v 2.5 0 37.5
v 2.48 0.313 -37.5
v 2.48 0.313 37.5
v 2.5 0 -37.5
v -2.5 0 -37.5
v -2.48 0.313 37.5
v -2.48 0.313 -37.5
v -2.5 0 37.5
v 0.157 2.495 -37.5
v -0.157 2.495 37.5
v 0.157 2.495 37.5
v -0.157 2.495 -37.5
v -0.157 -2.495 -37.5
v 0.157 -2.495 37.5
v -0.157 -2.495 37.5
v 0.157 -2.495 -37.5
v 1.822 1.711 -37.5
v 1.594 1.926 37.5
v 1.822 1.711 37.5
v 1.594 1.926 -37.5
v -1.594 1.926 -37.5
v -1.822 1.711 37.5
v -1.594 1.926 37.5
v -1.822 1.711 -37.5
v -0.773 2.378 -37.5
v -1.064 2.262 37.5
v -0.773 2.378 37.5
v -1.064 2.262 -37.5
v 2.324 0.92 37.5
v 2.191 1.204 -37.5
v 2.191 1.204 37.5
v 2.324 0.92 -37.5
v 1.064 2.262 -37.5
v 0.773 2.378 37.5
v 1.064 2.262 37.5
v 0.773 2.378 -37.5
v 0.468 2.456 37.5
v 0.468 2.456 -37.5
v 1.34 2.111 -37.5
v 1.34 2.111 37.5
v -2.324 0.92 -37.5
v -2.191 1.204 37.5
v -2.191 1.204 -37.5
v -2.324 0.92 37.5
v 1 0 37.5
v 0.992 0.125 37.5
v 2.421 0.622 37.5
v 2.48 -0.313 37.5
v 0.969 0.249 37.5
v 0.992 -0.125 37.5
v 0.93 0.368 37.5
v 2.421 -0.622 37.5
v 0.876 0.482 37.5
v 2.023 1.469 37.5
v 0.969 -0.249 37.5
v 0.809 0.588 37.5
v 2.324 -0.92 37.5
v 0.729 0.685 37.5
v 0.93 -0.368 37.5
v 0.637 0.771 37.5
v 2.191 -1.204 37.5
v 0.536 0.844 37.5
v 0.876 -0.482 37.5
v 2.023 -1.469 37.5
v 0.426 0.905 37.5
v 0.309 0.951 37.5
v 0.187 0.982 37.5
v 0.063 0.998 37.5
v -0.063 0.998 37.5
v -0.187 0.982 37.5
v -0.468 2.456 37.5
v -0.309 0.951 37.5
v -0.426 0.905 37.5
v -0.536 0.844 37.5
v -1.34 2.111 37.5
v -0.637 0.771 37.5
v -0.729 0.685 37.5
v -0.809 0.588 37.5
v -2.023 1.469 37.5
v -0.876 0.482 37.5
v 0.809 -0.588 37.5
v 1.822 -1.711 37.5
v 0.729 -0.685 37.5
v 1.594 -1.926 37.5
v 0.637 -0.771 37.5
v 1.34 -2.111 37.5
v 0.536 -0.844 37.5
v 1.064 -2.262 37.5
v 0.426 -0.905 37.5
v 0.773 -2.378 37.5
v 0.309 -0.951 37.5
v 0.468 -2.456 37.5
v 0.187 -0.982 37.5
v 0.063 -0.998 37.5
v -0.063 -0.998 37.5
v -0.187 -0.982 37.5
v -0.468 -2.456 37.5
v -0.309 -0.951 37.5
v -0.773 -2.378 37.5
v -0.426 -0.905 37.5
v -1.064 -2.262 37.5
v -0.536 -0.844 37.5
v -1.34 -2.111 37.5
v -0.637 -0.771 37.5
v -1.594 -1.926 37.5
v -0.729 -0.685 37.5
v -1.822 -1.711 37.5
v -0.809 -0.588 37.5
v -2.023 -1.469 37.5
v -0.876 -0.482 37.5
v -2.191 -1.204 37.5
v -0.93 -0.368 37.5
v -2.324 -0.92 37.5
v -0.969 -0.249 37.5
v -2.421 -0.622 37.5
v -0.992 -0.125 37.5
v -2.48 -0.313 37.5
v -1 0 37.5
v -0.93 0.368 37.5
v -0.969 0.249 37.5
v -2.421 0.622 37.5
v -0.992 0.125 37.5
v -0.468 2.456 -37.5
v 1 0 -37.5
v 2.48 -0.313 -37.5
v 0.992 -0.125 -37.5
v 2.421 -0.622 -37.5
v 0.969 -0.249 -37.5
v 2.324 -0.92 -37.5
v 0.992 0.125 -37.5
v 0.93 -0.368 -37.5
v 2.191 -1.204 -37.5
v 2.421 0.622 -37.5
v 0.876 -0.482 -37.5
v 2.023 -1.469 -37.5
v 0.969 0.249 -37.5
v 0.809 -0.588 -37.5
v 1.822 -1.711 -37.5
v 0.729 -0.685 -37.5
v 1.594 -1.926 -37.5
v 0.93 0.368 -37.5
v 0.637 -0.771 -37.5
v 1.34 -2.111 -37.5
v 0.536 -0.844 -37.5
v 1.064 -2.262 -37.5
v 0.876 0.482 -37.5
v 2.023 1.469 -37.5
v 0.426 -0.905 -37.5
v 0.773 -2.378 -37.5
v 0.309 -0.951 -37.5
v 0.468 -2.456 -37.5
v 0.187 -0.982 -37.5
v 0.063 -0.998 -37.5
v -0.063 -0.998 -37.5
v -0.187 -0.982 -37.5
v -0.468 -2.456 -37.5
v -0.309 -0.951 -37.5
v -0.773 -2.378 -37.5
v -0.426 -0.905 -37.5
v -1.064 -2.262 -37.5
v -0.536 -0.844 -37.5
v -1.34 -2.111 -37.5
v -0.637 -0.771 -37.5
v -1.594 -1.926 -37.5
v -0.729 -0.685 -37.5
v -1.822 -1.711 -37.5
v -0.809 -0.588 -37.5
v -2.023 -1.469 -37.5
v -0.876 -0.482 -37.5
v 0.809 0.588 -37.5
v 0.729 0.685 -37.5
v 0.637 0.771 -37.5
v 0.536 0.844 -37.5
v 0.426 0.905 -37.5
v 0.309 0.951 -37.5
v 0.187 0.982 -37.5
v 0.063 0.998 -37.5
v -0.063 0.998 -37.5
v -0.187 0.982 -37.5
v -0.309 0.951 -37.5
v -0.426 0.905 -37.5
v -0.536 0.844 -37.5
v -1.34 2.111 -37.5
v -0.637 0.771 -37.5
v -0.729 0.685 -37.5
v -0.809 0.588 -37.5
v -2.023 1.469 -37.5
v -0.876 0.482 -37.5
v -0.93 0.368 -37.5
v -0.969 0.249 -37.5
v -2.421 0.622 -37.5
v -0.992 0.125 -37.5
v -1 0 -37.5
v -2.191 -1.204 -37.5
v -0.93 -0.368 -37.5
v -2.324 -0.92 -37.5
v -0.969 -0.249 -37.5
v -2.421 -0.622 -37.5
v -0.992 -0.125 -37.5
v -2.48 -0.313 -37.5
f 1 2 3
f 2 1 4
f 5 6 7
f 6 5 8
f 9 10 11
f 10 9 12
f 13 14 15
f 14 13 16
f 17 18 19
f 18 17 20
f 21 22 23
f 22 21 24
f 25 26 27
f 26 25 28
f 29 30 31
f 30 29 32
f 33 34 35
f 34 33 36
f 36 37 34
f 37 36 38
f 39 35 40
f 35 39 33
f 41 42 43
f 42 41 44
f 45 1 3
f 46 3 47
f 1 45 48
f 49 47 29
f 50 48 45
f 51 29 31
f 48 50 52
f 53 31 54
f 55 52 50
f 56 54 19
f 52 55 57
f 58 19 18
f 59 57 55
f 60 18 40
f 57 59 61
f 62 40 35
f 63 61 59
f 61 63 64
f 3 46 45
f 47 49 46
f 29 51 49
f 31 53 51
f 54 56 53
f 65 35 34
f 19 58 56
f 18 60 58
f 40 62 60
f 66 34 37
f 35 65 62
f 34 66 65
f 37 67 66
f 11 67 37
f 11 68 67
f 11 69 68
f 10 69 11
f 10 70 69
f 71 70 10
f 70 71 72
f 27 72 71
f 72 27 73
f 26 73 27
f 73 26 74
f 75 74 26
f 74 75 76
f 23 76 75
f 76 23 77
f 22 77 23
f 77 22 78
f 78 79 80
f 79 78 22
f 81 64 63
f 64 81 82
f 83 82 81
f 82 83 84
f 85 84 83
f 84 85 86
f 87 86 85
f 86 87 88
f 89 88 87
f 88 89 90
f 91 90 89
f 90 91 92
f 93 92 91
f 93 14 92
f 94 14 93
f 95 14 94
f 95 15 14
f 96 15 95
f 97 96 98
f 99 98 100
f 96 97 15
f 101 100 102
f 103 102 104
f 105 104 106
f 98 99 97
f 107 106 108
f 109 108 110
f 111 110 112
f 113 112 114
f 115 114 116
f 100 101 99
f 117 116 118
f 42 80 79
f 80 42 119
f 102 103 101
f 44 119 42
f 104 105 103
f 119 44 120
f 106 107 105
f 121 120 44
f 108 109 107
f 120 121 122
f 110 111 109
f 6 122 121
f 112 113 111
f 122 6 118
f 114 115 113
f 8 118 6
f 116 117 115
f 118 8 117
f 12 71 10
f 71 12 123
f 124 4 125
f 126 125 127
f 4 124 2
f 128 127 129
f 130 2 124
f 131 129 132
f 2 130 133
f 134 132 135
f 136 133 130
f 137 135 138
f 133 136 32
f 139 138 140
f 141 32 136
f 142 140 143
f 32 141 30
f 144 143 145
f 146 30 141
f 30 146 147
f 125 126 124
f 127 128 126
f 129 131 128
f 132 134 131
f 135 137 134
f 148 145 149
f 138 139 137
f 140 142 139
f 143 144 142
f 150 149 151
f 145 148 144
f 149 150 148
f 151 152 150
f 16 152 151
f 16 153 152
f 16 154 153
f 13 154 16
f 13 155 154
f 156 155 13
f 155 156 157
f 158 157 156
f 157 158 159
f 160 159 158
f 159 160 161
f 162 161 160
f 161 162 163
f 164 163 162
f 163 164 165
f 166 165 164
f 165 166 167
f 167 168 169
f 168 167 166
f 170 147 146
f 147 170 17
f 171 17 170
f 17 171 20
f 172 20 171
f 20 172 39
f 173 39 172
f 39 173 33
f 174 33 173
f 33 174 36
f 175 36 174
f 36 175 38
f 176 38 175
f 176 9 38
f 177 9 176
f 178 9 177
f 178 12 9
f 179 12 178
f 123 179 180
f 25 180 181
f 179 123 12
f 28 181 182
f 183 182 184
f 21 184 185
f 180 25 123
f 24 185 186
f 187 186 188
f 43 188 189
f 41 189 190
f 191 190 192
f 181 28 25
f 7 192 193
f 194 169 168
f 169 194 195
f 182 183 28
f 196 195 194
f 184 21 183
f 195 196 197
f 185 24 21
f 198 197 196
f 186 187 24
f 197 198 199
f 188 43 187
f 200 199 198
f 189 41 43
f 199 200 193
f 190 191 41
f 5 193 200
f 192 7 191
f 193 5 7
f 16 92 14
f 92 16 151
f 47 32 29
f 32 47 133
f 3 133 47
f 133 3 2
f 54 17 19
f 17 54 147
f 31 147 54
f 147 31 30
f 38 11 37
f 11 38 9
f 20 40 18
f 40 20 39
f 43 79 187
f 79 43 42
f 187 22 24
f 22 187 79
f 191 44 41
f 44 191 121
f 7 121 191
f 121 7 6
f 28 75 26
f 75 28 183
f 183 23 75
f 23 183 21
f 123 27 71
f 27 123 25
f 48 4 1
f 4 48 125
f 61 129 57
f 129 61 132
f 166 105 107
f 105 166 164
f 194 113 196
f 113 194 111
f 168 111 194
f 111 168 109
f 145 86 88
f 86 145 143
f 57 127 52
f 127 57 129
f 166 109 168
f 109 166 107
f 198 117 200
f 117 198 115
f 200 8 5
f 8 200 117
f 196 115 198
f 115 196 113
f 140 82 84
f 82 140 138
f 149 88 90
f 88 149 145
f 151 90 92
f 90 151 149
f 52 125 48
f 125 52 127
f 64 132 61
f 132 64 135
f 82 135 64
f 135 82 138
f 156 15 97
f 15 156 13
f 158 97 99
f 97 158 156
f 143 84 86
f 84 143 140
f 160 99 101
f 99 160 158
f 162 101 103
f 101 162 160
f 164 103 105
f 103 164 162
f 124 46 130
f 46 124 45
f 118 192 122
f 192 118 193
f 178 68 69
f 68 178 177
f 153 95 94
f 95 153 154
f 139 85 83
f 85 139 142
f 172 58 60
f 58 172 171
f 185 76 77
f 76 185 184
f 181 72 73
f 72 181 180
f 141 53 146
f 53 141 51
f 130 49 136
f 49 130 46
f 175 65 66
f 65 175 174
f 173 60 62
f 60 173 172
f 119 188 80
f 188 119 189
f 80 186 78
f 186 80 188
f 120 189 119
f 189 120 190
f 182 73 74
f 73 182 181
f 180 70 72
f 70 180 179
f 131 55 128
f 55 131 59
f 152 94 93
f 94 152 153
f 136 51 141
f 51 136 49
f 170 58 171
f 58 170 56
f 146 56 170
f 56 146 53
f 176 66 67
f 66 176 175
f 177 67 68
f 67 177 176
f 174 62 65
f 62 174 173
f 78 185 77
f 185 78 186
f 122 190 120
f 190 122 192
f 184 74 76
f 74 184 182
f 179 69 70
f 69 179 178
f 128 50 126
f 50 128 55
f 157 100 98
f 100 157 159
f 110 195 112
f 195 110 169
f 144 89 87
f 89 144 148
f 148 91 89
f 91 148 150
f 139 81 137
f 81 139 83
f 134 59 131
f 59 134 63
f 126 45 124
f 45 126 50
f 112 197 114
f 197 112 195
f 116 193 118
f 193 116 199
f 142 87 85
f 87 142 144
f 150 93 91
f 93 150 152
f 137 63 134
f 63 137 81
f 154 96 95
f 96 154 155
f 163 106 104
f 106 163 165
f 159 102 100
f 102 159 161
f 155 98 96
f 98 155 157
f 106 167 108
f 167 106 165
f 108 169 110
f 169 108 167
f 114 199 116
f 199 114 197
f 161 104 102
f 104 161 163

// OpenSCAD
$fn = 50;


difference() {
	union() {
		translate(v = [0, 0, -37.5000000000]) {
			cylinder(h = 75, r = 2.5000000000);
		}
	}
	union() {
		translate(v = [0, 0, -100.0000000000]) {
			cylinder(h = 200, r = 1.0000000000);
		}
	}
}
